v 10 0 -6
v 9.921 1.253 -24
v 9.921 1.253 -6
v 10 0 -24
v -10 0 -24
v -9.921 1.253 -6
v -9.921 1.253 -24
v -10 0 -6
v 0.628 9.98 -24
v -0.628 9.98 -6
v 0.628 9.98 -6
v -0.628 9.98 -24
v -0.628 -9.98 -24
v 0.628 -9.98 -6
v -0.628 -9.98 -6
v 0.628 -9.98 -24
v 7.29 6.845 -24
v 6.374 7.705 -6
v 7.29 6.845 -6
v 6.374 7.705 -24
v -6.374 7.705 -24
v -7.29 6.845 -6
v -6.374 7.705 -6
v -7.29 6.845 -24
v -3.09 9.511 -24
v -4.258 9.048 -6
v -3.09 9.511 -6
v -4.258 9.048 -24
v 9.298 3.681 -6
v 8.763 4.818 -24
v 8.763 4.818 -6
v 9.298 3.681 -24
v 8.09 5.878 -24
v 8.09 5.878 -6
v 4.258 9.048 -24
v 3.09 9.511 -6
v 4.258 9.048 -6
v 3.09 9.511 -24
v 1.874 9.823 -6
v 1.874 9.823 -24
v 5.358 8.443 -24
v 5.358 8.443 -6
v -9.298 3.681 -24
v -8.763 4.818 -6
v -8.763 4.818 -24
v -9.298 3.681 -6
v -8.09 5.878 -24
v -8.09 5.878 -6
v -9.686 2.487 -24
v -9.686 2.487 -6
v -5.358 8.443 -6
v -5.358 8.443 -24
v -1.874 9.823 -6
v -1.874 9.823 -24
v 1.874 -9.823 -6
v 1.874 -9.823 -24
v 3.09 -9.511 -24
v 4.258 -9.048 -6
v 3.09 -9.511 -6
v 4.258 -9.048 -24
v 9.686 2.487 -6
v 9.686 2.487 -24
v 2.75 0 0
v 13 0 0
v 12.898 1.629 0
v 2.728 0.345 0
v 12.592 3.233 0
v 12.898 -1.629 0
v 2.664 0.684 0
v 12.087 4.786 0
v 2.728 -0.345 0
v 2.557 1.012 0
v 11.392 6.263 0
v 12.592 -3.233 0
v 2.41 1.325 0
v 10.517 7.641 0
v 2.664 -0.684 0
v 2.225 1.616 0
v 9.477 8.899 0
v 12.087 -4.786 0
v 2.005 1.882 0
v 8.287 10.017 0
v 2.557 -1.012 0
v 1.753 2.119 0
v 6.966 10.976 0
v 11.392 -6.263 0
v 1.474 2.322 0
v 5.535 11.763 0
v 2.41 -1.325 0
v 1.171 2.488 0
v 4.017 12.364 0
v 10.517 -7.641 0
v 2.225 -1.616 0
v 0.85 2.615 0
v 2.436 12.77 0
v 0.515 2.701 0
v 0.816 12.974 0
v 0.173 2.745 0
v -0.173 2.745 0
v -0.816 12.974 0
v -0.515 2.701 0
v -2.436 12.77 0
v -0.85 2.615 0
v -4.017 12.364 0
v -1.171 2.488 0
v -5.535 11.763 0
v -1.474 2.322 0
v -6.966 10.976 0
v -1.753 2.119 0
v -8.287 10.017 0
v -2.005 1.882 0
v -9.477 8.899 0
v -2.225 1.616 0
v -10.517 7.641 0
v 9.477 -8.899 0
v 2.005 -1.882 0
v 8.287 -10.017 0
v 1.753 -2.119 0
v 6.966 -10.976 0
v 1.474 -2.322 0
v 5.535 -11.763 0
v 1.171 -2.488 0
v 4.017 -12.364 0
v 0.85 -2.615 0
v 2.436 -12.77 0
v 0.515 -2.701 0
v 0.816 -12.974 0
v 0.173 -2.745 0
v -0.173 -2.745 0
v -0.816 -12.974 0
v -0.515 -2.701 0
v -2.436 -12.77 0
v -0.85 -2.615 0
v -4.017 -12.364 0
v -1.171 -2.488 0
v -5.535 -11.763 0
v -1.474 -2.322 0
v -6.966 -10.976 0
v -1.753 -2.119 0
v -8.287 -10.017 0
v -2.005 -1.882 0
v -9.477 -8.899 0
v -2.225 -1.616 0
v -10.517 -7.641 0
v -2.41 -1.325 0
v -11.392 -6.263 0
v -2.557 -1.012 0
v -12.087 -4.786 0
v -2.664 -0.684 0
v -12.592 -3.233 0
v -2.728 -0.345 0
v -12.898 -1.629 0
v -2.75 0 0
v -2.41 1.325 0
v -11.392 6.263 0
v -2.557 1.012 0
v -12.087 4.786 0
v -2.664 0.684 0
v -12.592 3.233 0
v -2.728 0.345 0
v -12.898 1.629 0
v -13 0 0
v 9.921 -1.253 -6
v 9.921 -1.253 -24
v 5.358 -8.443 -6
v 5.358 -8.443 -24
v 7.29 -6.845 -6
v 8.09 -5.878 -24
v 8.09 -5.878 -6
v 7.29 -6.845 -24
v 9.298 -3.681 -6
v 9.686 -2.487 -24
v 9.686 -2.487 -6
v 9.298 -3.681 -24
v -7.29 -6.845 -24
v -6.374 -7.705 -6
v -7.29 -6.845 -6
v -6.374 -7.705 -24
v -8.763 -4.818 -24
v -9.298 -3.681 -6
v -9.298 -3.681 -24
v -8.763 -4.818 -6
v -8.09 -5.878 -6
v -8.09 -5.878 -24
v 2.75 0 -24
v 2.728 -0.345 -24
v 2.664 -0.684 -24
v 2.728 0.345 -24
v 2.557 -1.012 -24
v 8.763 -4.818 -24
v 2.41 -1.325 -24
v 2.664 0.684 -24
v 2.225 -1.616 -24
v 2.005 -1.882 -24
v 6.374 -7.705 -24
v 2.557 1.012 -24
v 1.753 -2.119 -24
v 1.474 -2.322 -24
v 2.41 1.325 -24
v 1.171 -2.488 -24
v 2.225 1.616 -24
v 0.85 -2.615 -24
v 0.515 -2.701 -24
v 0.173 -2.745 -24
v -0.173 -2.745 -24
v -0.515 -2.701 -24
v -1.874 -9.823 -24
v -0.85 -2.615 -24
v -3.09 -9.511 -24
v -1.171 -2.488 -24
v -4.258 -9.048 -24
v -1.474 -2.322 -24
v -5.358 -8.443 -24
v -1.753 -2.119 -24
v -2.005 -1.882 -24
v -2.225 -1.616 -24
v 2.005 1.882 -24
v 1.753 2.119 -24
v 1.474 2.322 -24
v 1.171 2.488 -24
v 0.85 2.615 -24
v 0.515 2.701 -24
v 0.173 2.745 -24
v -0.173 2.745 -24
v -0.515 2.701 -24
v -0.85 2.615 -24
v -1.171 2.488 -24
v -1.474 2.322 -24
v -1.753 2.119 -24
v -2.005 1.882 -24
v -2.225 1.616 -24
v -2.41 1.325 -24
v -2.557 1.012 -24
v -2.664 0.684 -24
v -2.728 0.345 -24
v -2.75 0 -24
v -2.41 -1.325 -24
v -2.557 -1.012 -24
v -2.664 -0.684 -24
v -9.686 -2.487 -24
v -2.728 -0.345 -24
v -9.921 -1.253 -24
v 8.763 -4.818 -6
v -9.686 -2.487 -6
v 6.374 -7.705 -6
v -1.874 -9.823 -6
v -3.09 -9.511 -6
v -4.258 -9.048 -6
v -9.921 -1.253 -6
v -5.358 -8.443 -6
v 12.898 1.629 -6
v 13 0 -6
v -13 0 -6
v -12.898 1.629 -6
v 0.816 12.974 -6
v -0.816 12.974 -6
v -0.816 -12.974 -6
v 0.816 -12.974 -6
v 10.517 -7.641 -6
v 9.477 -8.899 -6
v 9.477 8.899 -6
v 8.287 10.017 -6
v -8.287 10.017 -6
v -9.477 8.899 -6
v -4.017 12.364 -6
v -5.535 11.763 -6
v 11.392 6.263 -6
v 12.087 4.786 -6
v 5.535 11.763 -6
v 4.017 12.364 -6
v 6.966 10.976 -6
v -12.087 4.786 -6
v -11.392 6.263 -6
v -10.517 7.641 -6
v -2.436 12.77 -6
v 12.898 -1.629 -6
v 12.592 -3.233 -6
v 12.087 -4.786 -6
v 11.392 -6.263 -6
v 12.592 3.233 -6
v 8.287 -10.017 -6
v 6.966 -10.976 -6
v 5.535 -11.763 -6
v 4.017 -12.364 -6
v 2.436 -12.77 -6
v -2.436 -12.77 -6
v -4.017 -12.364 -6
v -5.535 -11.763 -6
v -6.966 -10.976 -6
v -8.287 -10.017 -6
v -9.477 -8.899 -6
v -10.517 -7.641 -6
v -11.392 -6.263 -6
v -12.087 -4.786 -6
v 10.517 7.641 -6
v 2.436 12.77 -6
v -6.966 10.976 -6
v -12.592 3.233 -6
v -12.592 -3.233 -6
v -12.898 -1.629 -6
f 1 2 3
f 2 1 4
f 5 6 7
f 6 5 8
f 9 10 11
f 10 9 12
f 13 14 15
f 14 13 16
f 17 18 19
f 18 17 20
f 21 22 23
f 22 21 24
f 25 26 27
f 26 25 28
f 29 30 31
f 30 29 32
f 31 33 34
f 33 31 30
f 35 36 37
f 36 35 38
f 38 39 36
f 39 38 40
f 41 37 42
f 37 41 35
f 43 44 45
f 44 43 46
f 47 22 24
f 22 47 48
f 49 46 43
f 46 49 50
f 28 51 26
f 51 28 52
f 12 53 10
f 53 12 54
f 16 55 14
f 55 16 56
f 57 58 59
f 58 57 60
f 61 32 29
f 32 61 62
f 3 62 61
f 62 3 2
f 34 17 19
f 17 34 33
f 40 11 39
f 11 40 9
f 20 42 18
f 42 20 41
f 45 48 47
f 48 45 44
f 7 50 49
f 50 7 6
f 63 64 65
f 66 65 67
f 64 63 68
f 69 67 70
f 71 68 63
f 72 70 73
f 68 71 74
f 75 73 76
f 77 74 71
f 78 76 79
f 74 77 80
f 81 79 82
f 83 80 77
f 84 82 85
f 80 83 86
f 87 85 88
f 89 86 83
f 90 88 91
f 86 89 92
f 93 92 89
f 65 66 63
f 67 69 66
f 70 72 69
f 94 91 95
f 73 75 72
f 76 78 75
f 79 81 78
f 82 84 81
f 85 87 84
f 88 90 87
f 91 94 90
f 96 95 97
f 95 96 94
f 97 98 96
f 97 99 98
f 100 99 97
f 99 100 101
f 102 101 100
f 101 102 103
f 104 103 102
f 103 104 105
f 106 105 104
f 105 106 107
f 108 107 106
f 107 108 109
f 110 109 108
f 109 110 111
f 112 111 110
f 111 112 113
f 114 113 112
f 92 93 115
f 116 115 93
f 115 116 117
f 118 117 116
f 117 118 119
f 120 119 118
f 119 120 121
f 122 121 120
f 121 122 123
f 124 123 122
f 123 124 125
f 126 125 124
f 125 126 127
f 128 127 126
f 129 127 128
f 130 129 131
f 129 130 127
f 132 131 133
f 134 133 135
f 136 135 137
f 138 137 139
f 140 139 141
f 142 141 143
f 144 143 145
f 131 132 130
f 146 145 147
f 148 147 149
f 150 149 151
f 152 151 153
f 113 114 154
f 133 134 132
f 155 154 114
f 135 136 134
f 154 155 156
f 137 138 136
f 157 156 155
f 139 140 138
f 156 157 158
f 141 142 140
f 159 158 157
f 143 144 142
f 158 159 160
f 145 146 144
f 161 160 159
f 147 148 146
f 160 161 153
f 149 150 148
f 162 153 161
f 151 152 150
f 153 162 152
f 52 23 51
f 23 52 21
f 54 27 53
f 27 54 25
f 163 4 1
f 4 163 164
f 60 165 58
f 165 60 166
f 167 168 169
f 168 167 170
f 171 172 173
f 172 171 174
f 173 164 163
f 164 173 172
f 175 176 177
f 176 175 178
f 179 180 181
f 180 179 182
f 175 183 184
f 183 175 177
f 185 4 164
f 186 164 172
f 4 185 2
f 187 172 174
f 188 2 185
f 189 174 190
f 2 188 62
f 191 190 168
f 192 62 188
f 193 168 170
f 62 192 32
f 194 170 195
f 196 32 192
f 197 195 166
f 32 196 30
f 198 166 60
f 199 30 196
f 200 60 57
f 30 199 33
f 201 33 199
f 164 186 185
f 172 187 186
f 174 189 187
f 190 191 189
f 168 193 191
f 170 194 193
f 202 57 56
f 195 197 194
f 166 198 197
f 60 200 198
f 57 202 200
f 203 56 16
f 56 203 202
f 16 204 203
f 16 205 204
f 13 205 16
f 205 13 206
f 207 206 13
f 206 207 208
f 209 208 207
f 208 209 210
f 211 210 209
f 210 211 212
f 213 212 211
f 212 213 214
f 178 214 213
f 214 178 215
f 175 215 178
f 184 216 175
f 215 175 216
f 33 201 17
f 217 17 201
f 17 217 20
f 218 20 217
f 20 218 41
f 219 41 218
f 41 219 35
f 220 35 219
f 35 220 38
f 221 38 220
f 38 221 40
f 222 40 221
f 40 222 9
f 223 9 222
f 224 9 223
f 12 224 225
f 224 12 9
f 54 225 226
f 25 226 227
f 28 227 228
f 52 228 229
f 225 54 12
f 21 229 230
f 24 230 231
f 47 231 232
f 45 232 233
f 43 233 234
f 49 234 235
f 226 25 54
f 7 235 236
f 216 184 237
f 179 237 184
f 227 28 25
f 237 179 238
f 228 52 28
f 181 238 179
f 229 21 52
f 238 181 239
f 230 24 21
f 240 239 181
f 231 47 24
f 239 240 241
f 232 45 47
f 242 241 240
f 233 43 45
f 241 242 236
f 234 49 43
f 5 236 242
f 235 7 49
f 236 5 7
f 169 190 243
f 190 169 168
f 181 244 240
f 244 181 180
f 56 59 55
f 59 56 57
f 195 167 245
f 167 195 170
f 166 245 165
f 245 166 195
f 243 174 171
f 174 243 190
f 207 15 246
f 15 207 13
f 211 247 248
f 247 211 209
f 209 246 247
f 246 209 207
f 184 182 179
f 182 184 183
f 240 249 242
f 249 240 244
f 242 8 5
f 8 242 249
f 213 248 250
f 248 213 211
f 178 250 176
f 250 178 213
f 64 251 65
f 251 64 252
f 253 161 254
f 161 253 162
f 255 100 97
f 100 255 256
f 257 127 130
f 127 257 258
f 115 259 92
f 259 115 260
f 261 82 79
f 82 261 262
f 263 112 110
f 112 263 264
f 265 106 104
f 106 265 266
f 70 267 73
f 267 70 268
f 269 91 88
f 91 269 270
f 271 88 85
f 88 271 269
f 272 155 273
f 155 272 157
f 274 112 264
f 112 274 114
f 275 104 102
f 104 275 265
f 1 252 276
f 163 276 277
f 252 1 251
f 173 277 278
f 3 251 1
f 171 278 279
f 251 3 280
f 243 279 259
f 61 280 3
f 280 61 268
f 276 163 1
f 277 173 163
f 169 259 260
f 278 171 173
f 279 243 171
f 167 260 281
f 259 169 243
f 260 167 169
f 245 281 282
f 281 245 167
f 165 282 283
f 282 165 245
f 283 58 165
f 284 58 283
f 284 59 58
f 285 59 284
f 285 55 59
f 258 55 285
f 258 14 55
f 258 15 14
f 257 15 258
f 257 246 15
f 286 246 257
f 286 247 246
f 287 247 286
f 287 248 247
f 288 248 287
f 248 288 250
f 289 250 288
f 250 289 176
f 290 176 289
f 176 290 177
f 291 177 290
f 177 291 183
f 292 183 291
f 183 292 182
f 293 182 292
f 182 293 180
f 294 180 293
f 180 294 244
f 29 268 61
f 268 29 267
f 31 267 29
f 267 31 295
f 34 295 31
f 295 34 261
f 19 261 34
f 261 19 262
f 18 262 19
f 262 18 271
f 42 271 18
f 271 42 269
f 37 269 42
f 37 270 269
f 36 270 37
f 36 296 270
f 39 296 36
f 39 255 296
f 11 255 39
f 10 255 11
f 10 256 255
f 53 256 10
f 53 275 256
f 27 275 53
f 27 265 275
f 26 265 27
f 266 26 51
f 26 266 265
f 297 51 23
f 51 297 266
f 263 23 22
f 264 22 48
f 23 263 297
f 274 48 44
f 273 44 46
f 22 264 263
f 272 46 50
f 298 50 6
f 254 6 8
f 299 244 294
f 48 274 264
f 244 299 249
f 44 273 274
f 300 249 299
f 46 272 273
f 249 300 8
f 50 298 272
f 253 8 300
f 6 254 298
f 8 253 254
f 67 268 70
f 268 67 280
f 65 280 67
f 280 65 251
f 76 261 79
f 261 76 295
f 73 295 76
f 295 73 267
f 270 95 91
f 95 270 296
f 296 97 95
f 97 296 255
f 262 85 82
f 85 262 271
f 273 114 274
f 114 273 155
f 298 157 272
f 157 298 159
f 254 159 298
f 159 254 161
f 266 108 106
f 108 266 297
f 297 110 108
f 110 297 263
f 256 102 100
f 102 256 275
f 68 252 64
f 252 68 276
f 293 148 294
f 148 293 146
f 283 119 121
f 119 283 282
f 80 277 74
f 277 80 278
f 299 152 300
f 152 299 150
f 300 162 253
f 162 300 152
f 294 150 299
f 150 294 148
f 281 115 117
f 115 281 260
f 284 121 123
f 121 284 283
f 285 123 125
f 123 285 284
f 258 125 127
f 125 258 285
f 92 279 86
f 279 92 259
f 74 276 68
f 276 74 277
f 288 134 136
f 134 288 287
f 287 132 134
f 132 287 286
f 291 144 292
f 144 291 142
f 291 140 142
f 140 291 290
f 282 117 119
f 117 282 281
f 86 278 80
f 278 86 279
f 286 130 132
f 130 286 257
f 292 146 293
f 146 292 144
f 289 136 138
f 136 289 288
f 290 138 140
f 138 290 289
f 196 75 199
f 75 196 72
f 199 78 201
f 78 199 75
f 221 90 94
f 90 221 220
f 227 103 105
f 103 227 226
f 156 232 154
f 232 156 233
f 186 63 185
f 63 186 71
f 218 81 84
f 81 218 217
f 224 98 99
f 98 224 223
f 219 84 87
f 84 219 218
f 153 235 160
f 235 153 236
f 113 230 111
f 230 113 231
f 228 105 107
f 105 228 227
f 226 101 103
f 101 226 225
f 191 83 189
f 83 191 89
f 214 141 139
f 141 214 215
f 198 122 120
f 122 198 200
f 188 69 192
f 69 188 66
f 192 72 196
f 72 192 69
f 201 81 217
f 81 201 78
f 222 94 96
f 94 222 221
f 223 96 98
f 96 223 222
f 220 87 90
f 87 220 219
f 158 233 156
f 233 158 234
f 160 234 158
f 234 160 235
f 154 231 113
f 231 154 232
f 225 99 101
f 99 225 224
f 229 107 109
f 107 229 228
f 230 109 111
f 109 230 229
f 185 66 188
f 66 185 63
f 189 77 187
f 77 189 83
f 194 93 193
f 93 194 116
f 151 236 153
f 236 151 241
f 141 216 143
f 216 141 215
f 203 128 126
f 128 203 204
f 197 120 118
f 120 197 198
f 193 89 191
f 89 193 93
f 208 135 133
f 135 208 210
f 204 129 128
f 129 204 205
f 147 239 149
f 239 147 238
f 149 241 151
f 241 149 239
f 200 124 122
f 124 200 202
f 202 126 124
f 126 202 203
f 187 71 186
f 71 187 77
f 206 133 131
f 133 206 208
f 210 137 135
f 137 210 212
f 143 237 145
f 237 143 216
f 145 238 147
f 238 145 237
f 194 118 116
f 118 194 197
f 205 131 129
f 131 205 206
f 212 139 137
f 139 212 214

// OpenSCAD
$fn = 50;


difference() {
	union() {
		translate(v = [0, 0, -24.0000000000]) {
			cylinder(h = 24, r = 10.0000000000);
		}
		translate(v = [0, 0, -6.0000000000]) {
			cylinder(h = 6, r = 13.0000000000);
		}
	}
	union() {
		#translate(v = [0, 0, -24]) {
			cylinder(h = 24, r = 2.7500000000);
		}
	}
}
